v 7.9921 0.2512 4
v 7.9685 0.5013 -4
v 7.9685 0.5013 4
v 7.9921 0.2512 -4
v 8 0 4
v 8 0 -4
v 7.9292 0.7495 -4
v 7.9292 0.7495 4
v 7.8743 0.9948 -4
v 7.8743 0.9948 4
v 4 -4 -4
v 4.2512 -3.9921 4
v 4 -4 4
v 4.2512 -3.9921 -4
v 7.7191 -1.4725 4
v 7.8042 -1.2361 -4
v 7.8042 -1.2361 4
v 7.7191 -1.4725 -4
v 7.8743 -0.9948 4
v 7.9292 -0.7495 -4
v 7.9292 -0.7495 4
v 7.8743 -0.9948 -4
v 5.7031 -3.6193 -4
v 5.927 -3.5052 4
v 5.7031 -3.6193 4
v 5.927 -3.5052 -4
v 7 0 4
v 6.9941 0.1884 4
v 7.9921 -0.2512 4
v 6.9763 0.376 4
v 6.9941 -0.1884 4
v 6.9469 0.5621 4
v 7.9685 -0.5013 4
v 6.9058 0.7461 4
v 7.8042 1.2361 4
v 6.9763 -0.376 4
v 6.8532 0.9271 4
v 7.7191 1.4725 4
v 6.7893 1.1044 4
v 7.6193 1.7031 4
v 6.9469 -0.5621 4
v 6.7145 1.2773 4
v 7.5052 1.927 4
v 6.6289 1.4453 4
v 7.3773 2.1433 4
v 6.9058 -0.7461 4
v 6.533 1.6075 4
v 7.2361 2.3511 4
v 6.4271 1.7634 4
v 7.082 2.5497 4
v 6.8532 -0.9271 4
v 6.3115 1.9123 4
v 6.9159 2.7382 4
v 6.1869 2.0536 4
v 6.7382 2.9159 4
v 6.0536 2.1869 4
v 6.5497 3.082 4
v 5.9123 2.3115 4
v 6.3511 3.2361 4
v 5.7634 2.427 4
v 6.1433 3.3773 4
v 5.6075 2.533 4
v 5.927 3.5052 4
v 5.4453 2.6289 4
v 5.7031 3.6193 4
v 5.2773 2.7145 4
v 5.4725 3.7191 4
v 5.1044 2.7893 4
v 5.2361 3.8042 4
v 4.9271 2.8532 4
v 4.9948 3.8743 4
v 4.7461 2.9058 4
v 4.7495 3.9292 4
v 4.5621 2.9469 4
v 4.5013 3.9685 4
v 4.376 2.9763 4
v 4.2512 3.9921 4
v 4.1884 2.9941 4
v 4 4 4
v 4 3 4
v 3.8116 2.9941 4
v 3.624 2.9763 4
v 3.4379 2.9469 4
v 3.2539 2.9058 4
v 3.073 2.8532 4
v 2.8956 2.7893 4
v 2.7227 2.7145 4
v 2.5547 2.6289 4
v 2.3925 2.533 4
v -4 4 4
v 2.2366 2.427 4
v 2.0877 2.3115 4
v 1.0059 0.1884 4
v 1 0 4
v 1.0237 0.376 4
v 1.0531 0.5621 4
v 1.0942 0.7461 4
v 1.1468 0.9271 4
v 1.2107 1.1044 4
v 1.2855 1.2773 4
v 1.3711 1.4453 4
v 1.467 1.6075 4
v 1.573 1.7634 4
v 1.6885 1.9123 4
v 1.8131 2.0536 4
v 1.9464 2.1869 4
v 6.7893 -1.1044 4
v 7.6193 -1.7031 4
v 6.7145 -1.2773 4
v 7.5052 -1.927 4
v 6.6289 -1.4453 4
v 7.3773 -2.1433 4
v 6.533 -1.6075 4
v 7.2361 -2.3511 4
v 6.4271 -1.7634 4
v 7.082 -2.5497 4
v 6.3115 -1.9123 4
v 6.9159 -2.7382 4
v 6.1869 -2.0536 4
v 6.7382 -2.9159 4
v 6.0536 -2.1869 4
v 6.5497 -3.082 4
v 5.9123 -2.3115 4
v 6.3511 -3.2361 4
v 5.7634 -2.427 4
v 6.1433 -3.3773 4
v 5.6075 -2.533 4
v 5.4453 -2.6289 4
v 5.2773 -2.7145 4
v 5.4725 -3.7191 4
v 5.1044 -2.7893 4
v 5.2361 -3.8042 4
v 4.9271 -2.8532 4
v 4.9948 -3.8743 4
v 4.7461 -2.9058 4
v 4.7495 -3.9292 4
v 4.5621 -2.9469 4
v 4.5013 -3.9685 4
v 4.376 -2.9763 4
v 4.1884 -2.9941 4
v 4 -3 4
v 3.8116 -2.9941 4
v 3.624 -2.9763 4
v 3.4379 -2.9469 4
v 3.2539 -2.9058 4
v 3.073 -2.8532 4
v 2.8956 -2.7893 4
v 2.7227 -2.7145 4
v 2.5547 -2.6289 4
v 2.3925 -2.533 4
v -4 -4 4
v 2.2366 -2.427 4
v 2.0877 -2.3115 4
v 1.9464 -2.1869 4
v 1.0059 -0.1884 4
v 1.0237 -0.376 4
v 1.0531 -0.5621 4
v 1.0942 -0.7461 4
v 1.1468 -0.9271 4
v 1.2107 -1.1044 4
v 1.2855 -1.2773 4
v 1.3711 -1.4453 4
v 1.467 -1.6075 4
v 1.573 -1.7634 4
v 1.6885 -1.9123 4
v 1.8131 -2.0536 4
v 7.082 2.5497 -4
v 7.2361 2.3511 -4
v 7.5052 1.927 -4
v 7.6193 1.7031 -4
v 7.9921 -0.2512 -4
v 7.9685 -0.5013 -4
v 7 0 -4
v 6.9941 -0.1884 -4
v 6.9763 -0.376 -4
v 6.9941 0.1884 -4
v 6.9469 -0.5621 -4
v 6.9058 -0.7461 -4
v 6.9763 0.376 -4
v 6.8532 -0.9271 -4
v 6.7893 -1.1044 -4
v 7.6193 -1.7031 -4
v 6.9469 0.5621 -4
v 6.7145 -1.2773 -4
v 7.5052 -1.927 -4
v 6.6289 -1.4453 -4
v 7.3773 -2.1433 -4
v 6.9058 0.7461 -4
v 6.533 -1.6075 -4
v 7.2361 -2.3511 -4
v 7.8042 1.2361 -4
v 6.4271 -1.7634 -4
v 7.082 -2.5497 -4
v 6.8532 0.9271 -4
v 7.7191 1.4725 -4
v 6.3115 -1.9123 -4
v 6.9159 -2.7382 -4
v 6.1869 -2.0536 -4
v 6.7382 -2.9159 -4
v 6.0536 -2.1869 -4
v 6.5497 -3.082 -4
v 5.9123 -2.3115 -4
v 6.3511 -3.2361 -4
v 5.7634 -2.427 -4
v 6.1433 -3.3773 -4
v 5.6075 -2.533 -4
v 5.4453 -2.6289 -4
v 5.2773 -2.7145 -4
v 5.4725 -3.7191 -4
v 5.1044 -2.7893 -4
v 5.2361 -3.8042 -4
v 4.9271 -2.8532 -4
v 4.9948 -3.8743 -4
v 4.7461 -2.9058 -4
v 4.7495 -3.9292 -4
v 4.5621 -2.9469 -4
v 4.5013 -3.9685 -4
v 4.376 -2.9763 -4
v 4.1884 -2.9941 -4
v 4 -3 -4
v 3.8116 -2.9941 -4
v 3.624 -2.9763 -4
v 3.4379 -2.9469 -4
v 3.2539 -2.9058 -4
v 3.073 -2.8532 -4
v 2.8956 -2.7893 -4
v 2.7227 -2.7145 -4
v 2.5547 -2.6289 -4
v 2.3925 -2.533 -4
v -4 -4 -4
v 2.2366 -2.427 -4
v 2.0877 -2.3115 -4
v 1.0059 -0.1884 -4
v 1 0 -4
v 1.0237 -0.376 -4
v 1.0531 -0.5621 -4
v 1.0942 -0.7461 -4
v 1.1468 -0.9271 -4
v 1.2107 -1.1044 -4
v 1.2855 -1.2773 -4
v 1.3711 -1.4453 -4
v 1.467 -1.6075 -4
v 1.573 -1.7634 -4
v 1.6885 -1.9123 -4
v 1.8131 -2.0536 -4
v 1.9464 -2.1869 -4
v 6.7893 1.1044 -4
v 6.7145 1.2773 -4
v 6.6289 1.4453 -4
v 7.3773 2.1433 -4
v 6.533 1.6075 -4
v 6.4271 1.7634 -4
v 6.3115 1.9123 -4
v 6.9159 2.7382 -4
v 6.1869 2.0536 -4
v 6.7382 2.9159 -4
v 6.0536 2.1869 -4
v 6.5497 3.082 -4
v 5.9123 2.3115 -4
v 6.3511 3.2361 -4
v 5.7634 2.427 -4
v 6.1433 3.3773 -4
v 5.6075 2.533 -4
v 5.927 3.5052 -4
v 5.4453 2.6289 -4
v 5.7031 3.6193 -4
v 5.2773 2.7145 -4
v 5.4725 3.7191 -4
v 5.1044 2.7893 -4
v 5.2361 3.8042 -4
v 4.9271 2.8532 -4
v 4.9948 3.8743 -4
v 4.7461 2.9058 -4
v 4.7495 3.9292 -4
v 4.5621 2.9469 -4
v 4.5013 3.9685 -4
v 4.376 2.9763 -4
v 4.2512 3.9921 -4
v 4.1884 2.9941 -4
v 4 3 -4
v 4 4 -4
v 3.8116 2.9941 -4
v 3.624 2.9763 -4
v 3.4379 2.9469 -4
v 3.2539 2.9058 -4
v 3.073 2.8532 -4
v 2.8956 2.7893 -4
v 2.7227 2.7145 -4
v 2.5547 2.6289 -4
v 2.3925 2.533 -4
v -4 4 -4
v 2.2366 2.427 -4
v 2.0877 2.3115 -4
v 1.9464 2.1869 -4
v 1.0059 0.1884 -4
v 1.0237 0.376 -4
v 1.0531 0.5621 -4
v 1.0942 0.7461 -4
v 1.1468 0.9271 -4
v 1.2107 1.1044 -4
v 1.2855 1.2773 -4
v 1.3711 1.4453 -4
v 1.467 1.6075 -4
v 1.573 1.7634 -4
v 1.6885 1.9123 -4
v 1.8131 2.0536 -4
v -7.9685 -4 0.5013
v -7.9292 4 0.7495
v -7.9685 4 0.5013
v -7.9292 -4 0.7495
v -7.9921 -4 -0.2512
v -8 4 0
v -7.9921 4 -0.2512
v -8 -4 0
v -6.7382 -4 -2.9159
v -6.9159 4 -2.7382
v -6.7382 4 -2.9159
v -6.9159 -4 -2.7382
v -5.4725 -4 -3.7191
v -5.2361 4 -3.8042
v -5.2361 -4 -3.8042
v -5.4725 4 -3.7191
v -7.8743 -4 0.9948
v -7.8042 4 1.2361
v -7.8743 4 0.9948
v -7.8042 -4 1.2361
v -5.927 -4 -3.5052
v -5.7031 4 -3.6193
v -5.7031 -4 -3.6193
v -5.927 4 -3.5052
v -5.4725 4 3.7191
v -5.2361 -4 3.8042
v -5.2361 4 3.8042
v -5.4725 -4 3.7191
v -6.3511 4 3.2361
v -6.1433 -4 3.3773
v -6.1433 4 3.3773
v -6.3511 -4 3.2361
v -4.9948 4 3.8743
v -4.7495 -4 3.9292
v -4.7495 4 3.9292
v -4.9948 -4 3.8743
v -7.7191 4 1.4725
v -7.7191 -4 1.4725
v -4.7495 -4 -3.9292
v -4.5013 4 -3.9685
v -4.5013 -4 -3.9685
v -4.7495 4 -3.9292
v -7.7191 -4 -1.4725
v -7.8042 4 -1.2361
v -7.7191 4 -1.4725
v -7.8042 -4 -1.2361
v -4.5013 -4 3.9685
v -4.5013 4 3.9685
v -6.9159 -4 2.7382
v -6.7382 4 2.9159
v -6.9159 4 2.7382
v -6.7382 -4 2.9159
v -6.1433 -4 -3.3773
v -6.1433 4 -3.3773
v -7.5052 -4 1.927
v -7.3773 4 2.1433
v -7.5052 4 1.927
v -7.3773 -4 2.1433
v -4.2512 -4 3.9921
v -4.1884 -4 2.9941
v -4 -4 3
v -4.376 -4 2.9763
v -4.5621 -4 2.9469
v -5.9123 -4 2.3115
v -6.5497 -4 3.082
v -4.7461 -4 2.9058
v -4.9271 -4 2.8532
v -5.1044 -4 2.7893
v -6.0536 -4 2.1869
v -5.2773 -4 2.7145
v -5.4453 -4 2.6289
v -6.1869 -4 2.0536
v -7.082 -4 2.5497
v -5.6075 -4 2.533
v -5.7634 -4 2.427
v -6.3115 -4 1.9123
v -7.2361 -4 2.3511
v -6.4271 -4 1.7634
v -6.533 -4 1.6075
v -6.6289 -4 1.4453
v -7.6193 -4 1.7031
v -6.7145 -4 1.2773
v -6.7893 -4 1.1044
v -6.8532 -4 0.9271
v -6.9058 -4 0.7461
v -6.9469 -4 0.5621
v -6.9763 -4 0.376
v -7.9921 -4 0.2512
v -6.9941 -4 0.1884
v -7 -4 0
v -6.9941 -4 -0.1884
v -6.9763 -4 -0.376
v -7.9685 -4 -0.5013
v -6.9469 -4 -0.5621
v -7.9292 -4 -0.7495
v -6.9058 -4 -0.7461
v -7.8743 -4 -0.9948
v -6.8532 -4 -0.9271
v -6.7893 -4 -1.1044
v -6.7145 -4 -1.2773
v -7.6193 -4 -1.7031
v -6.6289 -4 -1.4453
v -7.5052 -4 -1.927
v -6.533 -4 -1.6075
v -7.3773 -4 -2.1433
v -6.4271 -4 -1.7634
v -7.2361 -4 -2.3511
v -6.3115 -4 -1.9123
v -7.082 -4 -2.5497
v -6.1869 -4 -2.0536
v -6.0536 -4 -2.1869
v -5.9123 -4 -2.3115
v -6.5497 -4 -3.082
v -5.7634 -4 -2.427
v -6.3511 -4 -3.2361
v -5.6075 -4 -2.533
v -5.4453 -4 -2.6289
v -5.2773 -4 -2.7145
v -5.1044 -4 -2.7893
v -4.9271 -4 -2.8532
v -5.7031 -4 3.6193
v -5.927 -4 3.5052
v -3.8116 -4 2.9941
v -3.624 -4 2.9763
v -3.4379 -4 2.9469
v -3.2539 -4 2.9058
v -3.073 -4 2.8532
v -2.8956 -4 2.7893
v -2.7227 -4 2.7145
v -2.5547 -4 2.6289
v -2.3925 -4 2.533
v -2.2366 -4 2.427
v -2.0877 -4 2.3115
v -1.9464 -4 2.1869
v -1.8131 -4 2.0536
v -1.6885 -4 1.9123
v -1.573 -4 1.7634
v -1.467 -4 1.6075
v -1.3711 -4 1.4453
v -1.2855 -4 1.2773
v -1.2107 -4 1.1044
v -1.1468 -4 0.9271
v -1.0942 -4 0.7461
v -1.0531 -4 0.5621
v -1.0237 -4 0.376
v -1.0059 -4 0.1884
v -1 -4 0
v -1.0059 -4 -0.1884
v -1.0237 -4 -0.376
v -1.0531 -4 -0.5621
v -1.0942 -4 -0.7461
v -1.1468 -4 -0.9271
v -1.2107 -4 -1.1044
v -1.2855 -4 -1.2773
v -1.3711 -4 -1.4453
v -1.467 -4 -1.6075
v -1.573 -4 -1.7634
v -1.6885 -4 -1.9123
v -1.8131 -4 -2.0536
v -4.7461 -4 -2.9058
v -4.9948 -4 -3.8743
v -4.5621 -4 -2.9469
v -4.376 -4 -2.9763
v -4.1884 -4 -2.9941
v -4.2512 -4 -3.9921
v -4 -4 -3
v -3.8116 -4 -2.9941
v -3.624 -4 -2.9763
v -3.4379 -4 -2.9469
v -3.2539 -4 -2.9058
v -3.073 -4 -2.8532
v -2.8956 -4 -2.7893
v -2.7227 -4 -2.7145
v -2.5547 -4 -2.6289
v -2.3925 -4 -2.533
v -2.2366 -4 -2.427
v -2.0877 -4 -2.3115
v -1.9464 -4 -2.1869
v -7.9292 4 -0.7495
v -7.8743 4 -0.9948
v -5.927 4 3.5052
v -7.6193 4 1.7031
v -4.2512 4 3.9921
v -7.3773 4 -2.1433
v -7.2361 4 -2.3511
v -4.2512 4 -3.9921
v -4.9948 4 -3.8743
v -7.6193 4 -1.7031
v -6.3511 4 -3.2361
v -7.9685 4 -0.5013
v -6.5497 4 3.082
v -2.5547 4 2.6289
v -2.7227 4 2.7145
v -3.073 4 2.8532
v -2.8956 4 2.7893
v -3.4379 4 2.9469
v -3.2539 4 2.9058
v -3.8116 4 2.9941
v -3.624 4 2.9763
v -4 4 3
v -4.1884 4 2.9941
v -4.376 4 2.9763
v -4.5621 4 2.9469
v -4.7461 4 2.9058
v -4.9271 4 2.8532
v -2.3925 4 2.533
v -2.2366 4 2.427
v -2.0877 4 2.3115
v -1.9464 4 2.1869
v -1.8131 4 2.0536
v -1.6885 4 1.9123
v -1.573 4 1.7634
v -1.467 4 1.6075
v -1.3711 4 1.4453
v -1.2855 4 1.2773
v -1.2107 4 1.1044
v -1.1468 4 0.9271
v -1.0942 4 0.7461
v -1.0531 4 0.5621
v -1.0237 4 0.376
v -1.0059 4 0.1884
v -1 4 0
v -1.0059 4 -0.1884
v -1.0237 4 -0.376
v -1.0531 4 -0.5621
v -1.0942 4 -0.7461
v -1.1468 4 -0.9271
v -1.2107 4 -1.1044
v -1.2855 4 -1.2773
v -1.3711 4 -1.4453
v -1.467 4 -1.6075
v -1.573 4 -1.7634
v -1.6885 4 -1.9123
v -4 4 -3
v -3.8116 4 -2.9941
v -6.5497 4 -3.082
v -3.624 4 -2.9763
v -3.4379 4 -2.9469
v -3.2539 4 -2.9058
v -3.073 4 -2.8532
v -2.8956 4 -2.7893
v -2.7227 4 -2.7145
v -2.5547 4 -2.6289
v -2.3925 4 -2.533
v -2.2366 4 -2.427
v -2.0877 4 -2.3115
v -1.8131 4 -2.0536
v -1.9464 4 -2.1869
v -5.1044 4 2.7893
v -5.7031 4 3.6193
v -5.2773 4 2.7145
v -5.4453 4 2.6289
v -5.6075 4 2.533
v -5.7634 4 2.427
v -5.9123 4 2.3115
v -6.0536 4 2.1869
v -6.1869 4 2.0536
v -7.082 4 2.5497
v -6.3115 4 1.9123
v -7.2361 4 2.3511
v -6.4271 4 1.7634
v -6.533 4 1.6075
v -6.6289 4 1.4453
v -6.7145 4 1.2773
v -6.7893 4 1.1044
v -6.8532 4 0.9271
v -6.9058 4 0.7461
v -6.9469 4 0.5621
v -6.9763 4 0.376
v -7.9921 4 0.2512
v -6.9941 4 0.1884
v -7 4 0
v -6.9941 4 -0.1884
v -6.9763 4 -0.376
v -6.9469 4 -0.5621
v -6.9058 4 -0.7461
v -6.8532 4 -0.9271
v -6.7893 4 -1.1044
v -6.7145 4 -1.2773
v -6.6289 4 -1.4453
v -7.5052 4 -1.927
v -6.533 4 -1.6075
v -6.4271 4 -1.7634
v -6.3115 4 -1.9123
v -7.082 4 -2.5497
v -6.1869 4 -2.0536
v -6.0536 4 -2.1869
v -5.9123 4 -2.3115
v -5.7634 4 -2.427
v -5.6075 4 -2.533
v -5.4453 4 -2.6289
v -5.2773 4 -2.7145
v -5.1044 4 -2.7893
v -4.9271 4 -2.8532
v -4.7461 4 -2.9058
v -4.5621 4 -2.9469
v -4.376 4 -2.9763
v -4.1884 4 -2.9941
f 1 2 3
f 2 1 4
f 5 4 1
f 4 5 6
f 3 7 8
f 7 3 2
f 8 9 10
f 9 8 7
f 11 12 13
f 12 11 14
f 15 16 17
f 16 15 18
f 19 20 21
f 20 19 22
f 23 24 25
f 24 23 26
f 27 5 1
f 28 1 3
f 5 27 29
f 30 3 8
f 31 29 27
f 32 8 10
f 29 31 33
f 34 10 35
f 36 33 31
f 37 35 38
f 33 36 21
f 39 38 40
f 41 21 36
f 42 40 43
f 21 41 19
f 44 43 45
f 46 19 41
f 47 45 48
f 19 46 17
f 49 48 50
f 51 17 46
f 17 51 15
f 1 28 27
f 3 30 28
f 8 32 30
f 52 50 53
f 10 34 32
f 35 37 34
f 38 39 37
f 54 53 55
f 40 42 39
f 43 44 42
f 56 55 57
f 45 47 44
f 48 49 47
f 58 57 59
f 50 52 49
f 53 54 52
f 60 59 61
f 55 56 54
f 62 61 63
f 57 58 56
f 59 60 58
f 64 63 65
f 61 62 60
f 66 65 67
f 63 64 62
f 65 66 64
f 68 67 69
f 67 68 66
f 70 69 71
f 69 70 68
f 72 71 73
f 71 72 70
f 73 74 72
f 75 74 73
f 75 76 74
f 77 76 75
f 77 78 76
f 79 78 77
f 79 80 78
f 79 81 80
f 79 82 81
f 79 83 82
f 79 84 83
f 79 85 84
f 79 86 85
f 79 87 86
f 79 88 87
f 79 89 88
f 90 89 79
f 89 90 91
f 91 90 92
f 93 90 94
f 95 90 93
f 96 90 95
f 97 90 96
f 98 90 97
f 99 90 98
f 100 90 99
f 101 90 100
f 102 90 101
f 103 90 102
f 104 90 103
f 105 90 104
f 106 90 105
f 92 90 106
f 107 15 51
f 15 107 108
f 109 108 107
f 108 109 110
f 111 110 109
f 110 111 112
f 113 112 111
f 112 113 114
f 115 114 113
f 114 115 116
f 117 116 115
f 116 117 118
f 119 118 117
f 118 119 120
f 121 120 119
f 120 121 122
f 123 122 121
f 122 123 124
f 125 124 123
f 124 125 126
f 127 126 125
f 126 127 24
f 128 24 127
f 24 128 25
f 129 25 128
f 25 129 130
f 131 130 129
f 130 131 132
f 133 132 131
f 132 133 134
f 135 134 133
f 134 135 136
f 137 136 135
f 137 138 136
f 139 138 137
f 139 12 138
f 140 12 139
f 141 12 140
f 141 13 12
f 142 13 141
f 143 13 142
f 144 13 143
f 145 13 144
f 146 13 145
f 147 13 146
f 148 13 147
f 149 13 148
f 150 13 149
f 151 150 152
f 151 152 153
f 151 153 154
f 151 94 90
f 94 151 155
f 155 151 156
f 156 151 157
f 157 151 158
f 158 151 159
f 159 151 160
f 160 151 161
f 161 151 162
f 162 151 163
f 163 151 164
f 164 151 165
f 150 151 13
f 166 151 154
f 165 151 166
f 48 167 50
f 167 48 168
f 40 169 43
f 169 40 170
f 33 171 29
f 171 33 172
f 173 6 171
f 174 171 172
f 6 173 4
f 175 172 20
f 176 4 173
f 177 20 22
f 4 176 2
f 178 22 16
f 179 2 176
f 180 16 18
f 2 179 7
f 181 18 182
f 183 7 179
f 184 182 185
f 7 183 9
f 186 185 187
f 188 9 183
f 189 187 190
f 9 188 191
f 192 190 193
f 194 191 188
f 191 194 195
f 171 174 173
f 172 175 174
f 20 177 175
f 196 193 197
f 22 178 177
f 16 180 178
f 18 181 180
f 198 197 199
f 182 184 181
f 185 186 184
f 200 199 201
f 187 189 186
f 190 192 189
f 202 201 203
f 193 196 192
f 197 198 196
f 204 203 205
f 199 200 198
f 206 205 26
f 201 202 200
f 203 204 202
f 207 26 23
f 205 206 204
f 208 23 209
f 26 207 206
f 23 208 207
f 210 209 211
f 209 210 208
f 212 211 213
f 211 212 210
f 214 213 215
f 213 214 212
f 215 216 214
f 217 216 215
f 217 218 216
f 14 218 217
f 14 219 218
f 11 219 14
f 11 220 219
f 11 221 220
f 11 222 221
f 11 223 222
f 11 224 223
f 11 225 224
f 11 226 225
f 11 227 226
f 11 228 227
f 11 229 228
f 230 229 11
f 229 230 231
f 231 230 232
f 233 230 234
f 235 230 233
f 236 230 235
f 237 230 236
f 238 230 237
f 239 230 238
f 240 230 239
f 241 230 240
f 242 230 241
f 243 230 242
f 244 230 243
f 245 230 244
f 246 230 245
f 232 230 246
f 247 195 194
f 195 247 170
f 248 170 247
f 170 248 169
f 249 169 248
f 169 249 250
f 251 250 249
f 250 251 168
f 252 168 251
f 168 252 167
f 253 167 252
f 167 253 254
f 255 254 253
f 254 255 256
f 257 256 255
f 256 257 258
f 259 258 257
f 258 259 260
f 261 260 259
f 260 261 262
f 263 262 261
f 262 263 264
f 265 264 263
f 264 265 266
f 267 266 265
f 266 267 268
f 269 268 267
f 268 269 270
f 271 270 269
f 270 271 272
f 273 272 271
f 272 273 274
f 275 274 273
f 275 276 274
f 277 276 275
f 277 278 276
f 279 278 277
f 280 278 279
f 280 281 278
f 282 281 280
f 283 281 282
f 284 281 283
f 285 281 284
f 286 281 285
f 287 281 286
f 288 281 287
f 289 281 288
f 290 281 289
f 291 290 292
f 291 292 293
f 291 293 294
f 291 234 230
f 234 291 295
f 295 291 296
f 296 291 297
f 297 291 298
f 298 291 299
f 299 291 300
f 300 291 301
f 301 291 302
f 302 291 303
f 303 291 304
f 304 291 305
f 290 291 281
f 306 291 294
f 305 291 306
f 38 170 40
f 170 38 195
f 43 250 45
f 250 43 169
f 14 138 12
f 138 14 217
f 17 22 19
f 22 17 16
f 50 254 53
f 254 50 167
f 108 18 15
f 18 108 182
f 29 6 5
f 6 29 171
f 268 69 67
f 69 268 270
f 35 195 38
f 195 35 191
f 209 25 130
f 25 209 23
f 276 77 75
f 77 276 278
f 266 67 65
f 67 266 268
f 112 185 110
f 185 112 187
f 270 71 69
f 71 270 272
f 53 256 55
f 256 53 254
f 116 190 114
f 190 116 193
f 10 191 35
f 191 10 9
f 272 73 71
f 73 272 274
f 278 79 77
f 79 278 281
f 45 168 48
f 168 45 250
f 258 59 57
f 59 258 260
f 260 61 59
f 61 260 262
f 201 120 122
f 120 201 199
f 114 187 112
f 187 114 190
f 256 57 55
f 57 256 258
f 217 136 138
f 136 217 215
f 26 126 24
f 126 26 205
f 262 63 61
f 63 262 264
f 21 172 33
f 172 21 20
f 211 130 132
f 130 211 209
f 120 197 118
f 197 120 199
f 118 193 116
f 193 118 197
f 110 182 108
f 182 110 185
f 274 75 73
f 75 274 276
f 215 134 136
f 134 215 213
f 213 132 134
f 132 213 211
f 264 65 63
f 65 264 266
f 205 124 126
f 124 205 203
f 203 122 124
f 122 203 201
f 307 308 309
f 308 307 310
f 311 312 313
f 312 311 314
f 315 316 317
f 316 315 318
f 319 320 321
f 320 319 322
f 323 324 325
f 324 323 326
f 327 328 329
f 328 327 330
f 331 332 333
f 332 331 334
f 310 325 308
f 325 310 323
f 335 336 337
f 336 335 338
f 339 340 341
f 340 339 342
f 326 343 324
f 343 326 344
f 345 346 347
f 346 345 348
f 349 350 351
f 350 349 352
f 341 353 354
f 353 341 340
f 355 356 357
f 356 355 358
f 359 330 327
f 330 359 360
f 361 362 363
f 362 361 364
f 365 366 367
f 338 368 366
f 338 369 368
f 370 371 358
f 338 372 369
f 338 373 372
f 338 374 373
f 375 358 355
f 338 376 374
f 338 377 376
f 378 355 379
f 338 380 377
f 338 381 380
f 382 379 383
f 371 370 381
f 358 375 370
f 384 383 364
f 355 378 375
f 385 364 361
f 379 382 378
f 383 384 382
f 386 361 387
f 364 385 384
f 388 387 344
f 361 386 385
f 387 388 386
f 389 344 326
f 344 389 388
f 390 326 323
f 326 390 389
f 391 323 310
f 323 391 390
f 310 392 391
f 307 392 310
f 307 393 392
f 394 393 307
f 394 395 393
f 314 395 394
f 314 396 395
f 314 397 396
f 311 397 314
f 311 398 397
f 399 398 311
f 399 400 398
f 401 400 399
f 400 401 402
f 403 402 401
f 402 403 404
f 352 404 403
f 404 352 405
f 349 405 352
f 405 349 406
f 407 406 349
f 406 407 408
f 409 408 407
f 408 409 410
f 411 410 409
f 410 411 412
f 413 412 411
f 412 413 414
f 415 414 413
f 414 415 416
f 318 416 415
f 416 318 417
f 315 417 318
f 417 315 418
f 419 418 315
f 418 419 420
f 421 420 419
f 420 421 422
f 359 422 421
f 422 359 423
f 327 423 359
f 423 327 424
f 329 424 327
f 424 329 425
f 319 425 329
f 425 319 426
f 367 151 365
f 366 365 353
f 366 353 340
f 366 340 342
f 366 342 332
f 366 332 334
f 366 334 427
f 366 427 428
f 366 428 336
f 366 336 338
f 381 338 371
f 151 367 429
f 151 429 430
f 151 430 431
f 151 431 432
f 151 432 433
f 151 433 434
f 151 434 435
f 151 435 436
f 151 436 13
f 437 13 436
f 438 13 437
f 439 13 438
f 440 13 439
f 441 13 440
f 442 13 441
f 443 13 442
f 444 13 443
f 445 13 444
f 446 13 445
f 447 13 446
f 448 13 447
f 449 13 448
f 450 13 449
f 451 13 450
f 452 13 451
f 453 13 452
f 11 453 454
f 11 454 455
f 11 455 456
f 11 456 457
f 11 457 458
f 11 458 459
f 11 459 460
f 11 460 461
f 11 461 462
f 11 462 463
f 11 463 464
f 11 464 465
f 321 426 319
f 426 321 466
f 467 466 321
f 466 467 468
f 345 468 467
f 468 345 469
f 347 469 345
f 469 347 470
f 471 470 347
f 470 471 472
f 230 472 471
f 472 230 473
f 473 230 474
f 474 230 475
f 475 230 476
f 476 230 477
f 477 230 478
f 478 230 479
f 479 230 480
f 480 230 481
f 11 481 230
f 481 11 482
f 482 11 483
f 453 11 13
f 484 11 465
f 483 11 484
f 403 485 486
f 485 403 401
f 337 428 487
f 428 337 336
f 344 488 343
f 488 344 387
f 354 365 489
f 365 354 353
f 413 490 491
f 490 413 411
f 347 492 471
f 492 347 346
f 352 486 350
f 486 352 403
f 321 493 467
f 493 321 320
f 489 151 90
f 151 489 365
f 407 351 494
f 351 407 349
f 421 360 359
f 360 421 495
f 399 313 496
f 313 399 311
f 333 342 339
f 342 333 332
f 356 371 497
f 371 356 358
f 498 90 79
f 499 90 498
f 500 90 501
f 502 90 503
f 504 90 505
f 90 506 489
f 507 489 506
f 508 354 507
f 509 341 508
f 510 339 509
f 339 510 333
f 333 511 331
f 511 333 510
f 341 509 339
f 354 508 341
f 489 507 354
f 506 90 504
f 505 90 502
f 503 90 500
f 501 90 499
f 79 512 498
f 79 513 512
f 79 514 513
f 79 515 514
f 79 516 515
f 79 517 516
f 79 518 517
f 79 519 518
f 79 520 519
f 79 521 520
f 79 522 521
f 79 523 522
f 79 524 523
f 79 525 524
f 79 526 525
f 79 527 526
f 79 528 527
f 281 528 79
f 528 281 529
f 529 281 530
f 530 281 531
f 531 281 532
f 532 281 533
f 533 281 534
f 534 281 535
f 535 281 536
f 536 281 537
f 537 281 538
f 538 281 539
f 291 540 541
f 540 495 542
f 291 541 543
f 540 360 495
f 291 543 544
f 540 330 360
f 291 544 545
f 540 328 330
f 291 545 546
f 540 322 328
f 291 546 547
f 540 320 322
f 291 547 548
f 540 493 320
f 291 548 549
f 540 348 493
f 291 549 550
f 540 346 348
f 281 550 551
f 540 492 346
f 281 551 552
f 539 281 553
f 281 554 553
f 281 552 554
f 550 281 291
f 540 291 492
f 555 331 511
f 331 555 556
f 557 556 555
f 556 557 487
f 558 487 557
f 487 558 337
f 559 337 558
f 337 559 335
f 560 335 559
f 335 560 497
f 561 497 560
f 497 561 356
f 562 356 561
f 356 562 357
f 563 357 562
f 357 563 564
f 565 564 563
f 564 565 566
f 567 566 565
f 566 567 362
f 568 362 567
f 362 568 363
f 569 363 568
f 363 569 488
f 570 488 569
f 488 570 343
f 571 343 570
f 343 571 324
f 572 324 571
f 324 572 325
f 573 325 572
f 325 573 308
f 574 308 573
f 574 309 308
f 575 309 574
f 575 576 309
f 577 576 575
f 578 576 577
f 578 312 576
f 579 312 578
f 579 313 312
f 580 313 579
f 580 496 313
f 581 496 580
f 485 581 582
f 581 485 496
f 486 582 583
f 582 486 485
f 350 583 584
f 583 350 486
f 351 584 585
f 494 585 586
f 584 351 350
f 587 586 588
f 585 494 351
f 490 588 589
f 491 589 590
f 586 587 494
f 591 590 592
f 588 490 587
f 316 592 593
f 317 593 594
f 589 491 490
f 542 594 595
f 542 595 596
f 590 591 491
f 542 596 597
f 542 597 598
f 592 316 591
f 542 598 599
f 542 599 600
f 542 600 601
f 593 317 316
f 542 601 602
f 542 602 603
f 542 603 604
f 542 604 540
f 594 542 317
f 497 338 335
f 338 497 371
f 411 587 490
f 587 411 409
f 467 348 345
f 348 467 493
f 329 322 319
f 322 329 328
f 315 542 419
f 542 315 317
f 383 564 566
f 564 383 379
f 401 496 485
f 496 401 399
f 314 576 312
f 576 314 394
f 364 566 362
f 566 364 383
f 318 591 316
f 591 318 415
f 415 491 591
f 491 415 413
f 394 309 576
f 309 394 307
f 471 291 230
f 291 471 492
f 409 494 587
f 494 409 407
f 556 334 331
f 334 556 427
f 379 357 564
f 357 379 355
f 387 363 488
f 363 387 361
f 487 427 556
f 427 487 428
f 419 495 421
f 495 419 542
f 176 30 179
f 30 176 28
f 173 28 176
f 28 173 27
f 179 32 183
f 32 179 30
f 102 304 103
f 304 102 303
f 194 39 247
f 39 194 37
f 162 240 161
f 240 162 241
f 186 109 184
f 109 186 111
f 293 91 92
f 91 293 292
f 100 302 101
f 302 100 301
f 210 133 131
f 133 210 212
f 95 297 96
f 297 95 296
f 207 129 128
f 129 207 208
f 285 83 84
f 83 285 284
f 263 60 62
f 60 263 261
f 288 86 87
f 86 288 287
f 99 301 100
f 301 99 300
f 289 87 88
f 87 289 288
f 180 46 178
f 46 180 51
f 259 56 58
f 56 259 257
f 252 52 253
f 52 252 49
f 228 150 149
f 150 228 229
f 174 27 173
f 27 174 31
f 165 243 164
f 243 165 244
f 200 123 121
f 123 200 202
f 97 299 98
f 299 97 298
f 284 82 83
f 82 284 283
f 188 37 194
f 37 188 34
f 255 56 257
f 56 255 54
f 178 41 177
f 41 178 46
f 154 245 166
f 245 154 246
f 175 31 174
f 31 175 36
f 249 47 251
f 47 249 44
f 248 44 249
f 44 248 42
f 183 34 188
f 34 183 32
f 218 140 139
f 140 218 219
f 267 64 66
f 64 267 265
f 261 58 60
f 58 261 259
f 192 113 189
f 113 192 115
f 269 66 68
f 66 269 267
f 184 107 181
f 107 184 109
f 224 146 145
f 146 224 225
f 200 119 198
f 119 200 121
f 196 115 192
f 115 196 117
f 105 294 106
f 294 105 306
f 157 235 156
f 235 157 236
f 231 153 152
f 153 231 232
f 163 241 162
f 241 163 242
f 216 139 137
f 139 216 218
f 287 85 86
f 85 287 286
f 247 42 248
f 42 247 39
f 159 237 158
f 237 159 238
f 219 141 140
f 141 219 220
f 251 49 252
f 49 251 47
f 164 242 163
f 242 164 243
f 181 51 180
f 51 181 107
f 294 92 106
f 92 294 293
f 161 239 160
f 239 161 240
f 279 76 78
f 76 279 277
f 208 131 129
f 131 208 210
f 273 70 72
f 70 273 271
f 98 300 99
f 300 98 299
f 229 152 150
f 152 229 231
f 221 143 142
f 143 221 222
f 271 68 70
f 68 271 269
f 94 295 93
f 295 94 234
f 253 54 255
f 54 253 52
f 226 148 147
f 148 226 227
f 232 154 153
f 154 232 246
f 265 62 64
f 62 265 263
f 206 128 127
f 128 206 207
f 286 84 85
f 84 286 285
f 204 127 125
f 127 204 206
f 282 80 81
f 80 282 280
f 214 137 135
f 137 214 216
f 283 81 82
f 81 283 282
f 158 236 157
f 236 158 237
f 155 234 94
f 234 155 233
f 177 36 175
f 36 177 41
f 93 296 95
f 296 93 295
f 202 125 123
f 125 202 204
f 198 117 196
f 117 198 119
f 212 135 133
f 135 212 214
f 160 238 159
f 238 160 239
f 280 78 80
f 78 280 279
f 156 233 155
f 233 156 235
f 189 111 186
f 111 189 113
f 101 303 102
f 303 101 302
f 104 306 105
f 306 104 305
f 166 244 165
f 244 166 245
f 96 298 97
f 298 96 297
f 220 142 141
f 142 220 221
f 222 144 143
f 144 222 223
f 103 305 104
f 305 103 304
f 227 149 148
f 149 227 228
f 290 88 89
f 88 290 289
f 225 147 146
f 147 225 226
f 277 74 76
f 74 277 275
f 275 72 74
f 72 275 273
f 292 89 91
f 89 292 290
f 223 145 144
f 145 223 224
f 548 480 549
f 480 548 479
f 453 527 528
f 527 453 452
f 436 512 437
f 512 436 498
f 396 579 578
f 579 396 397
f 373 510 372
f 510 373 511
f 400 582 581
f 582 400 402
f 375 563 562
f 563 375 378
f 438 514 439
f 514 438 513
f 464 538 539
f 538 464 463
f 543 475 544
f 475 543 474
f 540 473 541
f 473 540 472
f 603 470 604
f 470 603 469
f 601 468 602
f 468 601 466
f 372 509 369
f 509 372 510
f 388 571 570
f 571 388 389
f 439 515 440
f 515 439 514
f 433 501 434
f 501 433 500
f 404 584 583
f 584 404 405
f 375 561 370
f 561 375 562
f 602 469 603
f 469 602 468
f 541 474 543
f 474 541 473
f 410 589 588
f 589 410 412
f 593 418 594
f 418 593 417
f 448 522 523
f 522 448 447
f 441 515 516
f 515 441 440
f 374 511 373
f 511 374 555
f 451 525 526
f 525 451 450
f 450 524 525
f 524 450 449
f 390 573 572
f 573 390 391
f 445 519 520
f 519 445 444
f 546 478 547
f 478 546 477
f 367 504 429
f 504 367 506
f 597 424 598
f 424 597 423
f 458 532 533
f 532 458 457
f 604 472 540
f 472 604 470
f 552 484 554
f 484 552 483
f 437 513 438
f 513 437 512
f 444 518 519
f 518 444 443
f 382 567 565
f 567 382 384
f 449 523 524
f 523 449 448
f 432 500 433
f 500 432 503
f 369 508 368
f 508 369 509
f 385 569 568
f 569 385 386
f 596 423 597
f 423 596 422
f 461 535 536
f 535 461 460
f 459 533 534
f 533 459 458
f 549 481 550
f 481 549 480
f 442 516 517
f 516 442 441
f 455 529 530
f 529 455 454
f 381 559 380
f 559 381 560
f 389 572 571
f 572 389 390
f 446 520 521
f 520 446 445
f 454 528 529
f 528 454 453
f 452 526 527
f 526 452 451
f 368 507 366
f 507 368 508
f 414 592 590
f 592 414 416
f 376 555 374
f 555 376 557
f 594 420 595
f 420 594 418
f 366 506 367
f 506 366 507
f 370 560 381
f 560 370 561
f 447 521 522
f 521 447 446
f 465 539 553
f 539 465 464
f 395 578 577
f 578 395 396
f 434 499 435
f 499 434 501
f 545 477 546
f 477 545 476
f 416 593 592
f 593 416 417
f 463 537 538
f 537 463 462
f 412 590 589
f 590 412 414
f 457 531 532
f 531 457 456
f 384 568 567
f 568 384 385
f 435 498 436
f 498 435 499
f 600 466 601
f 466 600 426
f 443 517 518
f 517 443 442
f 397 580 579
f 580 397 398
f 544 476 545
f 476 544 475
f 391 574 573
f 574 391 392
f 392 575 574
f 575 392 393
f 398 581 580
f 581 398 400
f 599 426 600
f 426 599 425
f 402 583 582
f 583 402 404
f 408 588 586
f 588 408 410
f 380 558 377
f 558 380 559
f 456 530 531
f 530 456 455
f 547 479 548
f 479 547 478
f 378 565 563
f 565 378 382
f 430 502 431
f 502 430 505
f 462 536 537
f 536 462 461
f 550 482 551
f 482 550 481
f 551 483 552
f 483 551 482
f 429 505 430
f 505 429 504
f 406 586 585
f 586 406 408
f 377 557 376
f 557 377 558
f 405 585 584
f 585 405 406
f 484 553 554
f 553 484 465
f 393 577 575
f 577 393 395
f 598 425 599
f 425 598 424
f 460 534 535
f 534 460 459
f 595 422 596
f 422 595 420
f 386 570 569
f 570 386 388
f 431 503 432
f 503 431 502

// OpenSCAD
size = 4;
$fn = 100;
difference() {
union(){
    translate([size, 0, 0]){
        cylinder(r=size, h=size*2, center=true);
    }
    translate([-size, 0, 0]){
      rotate([90, 0, 0]) {
        cylinder(r=size, h=size*2, center=true);
      }
    }
    cube(size*2, center=true);
    }
translate([size, 0, 0]){
    cylinder(r=size-1, h=size*2+1, center=true);
}
translate([-size, 0, 0]){
  rotate([90, 0, 0]) {
      cylinder(r=size-1, h=size*2+1, center=true);
  }
}
}
